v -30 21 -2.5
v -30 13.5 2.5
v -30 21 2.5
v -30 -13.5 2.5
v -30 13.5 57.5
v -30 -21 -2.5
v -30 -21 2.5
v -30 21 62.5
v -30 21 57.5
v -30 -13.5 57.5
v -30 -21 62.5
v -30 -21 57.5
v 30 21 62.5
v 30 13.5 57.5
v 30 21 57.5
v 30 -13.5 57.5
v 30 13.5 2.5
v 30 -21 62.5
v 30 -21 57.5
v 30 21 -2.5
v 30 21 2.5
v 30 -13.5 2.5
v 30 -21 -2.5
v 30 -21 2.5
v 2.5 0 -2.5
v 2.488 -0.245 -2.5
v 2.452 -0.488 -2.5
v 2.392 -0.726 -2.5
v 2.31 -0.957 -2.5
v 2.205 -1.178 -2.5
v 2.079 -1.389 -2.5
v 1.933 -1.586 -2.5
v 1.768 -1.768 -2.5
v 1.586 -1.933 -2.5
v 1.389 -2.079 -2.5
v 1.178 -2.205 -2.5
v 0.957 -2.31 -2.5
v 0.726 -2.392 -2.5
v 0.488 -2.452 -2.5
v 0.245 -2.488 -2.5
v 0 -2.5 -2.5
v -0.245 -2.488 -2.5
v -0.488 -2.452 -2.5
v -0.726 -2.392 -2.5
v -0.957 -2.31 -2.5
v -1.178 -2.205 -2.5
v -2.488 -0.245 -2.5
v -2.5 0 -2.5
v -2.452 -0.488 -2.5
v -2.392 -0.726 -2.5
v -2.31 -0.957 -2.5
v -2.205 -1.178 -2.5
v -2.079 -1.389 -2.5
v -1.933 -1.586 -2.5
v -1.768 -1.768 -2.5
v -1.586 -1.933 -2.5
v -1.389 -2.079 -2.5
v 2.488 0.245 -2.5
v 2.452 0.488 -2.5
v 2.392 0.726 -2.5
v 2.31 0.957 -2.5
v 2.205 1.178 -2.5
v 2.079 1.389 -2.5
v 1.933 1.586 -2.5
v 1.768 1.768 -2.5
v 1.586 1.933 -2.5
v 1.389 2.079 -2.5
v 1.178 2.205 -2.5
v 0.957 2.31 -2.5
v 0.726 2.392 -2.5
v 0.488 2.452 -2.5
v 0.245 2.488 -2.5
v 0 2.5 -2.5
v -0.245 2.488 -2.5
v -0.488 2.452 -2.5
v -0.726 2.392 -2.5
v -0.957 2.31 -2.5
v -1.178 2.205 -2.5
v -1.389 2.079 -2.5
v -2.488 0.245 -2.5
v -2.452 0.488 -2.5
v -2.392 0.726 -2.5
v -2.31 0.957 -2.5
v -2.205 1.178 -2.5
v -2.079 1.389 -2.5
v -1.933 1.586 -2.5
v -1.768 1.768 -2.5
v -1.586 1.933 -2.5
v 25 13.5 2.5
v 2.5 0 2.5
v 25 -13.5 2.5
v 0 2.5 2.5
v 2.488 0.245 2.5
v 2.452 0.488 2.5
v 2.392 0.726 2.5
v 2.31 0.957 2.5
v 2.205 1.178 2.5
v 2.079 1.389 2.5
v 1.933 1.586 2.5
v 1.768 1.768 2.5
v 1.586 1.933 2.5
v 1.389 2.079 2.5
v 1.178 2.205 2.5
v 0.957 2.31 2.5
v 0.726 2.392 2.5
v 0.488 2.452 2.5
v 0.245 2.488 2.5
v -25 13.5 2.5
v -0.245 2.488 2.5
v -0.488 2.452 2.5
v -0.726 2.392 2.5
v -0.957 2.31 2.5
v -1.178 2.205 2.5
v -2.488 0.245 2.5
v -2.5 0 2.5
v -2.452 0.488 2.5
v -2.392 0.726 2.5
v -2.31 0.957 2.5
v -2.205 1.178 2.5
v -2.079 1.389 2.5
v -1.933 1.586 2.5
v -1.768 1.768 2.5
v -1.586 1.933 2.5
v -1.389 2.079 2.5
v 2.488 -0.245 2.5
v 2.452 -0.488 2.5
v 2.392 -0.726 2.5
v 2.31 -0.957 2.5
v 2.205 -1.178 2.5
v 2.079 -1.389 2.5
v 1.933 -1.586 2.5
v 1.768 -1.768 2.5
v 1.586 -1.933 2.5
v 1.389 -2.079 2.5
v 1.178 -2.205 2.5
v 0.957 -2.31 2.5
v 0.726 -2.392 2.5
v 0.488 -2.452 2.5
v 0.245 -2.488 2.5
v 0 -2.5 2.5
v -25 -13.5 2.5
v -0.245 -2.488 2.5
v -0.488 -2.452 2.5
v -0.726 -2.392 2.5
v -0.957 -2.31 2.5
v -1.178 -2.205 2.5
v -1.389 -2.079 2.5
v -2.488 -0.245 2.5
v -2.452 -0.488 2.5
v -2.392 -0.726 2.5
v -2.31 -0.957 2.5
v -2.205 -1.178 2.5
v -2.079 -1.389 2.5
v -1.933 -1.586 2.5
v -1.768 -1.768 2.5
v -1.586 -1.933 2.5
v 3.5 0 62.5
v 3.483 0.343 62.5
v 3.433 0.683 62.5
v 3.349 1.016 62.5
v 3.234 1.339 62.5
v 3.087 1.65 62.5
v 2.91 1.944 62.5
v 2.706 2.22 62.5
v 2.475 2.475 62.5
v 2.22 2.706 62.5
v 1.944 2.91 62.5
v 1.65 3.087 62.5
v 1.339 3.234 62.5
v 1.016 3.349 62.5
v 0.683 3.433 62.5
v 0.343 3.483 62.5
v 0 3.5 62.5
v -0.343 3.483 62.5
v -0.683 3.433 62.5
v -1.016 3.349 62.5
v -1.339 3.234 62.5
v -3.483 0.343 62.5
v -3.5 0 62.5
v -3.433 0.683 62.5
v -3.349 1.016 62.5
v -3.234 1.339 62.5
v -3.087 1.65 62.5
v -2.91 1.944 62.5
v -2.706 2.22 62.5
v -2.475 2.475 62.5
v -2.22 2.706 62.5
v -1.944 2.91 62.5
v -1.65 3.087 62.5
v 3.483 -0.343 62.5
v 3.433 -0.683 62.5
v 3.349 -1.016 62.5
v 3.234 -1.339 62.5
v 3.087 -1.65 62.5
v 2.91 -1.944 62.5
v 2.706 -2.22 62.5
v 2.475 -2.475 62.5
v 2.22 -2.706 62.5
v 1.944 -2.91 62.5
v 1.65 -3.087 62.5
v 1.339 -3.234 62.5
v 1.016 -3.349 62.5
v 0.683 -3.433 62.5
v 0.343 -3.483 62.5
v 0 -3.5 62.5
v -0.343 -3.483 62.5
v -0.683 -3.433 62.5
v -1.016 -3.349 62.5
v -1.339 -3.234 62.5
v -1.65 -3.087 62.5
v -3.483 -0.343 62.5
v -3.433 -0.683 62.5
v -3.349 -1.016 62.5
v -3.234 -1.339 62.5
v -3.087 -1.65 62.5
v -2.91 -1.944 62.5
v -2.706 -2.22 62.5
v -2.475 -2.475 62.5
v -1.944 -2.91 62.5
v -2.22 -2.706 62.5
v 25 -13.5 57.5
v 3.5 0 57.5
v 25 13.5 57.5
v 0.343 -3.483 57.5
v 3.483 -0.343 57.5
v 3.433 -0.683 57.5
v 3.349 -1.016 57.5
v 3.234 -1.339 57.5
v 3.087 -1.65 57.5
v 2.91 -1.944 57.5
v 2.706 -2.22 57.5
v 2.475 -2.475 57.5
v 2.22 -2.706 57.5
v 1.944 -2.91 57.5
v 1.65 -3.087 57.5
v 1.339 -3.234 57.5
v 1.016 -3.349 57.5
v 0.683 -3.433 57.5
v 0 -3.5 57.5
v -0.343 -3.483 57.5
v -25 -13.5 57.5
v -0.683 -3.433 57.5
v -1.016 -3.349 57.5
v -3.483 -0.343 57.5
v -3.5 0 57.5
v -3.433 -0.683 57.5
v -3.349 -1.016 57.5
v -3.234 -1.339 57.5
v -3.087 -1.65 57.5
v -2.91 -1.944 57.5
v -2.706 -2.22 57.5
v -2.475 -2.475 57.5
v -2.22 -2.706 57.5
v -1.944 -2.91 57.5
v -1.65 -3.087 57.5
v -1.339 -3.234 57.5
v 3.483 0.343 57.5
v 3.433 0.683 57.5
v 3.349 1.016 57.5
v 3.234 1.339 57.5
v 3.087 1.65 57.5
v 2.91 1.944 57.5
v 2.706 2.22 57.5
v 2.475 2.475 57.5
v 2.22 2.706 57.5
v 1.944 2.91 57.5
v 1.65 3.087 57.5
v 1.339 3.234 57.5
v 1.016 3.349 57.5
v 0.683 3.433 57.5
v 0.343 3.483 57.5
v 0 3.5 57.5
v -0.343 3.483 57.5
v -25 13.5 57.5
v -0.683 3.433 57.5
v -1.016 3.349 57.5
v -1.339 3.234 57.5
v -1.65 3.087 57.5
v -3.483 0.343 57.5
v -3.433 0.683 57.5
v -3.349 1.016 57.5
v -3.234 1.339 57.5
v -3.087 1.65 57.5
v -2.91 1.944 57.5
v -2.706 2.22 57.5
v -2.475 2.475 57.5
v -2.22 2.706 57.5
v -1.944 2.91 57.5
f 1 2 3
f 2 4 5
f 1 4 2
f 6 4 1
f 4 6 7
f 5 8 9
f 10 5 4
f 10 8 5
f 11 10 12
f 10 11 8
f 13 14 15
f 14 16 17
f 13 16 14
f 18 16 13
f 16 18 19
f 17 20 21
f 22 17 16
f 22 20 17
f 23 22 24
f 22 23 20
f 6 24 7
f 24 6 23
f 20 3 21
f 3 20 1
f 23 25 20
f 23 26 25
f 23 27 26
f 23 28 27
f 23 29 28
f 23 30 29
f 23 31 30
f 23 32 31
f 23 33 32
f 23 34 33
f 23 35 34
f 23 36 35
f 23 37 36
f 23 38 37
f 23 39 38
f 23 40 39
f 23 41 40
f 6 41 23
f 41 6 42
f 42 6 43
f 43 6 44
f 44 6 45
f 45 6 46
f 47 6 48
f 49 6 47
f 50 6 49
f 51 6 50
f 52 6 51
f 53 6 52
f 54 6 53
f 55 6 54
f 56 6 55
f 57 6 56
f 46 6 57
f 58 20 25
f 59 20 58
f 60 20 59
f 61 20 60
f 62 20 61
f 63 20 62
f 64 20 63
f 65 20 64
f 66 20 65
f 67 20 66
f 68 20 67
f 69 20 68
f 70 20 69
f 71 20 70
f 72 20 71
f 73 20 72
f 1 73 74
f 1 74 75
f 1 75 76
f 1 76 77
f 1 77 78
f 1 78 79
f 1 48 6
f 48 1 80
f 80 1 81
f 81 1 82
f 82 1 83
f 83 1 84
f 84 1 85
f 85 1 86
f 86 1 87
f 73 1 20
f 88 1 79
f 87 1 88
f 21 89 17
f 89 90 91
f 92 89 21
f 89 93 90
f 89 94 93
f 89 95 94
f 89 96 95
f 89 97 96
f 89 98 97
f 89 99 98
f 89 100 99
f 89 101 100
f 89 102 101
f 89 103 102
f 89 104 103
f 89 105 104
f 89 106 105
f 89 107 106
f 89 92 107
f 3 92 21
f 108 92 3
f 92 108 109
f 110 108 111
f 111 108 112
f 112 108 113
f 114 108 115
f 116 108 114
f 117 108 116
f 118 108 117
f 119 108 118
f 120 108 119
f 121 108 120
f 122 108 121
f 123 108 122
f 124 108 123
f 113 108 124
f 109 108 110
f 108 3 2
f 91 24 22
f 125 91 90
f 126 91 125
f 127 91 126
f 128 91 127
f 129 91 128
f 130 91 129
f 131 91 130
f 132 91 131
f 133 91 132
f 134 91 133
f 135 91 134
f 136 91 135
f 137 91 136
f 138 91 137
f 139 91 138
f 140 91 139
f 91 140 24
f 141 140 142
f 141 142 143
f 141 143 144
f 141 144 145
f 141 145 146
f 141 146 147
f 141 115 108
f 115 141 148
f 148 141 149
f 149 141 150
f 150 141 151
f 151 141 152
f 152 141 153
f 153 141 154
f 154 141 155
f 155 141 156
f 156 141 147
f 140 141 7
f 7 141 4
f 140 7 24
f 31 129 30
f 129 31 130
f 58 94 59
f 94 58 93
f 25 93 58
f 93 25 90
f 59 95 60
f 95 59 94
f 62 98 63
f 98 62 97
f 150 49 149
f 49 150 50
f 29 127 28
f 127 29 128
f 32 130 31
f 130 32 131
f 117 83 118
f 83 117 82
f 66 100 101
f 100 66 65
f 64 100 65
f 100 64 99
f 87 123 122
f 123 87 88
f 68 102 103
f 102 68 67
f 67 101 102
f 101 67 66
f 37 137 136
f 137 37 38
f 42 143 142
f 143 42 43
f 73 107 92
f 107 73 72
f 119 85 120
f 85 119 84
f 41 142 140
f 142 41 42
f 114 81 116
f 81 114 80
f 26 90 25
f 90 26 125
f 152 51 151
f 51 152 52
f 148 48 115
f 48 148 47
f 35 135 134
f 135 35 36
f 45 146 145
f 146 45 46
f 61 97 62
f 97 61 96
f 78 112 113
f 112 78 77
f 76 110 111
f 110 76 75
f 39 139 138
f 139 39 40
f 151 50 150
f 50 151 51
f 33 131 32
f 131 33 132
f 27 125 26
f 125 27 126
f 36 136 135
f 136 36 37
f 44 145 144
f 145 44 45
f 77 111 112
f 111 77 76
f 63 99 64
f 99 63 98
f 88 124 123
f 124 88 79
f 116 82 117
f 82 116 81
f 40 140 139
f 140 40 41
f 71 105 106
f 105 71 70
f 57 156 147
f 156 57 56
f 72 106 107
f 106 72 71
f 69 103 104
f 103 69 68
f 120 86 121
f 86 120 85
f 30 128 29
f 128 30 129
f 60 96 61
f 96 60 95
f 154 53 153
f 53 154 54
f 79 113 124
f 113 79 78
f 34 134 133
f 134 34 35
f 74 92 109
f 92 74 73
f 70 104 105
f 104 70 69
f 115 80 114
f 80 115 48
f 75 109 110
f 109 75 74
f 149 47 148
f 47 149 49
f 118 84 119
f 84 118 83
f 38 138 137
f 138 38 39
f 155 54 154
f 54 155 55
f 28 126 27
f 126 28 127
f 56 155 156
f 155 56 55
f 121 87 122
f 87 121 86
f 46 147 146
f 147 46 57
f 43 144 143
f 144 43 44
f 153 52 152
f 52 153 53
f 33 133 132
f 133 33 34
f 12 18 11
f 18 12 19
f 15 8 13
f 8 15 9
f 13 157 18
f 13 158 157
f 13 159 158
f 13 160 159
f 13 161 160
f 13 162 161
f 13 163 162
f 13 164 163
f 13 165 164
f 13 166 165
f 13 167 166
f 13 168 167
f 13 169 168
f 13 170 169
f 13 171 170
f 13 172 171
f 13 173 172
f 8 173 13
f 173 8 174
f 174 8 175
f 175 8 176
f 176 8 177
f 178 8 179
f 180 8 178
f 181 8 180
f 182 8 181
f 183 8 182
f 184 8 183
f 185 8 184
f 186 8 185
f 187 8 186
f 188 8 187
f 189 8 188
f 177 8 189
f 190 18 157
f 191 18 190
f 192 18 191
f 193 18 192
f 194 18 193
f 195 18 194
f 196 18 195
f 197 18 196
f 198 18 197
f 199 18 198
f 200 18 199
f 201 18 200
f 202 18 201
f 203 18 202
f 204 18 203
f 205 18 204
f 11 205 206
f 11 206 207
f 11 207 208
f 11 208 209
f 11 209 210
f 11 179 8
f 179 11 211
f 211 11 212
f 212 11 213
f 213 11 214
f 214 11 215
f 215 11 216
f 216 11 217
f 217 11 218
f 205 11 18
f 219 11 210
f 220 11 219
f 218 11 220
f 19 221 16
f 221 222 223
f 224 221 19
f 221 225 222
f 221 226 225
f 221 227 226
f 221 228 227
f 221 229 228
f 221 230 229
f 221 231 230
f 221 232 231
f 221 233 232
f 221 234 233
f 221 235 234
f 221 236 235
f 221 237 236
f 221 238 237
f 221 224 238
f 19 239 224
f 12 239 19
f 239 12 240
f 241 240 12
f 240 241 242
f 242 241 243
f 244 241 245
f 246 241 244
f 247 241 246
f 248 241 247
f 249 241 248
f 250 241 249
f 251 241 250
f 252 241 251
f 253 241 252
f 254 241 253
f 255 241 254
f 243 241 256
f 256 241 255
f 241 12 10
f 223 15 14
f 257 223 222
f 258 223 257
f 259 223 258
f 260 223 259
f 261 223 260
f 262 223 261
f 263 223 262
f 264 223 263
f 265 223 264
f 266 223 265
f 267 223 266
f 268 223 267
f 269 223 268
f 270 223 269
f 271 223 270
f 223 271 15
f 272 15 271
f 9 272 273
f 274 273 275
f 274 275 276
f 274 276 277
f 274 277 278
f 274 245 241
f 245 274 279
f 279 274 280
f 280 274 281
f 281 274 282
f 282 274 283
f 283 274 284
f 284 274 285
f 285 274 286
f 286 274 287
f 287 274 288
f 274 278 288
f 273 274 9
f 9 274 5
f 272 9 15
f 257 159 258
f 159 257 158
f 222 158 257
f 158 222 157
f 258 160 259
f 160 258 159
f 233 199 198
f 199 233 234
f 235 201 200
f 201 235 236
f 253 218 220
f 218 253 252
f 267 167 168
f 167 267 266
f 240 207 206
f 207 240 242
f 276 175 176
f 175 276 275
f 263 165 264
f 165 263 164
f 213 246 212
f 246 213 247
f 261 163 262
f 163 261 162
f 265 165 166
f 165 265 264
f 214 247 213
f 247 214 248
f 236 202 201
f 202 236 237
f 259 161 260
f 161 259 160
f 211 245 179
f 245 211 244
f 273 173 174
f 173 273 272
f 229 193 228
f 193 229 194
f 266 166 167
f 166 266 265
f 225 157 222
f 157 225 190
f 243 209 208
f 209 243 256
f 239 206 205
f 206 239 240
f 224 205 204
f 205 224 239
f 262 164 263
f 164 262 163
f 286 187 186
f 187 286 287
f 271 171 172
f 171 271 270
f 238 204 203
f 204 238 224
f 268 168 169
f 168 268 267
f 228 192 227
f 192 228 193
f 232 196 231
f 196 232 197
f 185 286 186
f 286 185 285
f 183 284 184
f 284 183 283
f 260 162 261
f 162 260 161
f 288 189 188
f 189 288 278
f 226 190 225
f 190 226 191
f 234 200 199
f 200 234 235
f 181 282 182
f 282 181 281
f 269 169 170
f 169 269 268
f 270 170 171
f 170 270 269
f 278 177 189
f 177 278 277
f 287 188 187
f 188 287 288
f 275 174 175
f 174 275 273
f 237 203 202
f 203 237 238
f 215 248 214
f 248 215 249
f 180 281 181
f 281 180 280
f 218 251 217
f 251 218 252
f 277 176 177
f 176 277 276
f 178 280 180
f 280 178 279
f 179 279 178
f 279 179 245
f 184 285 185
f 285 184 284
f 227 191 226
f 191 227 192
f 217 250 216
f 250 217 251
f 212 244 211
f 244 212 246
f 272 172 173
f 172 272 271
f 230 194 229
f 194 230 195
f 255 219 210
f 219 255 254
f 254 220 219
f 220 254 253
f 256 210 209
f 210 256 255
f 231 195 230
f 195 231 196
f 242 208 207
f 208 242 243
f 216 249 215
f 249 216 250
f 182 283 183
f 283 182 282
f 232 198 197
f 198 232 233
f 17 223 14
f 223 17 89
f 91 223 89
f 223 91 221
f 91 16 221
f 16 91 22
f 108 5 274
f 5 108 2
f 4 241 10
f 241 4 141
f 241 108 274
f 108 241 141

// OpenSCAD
$fn=64;

l=60;
w=5;
h = 42;

difference(){
    rotate([90,0,0])
cube([l,w,h],center=true);
    translate([0,0,-5])
    cylinder(100,2.5,2.5);
}

rotate([90,0,90])
translate([0,l/2,h/2 + (w+1.5)])
cube([h-15,l,w],center=true);

rotate([90,0,-90])
translate([0,l/2,h/2 + (w+1.5)])
cube([h-15,l,w],center=true);

translate([0,0,l])
difference(){
    rotate([90,0,0])
cube([l,w,h],center=true);
    translate([0,0,-5])
    cylinder(100,3.5,3.5);
}
